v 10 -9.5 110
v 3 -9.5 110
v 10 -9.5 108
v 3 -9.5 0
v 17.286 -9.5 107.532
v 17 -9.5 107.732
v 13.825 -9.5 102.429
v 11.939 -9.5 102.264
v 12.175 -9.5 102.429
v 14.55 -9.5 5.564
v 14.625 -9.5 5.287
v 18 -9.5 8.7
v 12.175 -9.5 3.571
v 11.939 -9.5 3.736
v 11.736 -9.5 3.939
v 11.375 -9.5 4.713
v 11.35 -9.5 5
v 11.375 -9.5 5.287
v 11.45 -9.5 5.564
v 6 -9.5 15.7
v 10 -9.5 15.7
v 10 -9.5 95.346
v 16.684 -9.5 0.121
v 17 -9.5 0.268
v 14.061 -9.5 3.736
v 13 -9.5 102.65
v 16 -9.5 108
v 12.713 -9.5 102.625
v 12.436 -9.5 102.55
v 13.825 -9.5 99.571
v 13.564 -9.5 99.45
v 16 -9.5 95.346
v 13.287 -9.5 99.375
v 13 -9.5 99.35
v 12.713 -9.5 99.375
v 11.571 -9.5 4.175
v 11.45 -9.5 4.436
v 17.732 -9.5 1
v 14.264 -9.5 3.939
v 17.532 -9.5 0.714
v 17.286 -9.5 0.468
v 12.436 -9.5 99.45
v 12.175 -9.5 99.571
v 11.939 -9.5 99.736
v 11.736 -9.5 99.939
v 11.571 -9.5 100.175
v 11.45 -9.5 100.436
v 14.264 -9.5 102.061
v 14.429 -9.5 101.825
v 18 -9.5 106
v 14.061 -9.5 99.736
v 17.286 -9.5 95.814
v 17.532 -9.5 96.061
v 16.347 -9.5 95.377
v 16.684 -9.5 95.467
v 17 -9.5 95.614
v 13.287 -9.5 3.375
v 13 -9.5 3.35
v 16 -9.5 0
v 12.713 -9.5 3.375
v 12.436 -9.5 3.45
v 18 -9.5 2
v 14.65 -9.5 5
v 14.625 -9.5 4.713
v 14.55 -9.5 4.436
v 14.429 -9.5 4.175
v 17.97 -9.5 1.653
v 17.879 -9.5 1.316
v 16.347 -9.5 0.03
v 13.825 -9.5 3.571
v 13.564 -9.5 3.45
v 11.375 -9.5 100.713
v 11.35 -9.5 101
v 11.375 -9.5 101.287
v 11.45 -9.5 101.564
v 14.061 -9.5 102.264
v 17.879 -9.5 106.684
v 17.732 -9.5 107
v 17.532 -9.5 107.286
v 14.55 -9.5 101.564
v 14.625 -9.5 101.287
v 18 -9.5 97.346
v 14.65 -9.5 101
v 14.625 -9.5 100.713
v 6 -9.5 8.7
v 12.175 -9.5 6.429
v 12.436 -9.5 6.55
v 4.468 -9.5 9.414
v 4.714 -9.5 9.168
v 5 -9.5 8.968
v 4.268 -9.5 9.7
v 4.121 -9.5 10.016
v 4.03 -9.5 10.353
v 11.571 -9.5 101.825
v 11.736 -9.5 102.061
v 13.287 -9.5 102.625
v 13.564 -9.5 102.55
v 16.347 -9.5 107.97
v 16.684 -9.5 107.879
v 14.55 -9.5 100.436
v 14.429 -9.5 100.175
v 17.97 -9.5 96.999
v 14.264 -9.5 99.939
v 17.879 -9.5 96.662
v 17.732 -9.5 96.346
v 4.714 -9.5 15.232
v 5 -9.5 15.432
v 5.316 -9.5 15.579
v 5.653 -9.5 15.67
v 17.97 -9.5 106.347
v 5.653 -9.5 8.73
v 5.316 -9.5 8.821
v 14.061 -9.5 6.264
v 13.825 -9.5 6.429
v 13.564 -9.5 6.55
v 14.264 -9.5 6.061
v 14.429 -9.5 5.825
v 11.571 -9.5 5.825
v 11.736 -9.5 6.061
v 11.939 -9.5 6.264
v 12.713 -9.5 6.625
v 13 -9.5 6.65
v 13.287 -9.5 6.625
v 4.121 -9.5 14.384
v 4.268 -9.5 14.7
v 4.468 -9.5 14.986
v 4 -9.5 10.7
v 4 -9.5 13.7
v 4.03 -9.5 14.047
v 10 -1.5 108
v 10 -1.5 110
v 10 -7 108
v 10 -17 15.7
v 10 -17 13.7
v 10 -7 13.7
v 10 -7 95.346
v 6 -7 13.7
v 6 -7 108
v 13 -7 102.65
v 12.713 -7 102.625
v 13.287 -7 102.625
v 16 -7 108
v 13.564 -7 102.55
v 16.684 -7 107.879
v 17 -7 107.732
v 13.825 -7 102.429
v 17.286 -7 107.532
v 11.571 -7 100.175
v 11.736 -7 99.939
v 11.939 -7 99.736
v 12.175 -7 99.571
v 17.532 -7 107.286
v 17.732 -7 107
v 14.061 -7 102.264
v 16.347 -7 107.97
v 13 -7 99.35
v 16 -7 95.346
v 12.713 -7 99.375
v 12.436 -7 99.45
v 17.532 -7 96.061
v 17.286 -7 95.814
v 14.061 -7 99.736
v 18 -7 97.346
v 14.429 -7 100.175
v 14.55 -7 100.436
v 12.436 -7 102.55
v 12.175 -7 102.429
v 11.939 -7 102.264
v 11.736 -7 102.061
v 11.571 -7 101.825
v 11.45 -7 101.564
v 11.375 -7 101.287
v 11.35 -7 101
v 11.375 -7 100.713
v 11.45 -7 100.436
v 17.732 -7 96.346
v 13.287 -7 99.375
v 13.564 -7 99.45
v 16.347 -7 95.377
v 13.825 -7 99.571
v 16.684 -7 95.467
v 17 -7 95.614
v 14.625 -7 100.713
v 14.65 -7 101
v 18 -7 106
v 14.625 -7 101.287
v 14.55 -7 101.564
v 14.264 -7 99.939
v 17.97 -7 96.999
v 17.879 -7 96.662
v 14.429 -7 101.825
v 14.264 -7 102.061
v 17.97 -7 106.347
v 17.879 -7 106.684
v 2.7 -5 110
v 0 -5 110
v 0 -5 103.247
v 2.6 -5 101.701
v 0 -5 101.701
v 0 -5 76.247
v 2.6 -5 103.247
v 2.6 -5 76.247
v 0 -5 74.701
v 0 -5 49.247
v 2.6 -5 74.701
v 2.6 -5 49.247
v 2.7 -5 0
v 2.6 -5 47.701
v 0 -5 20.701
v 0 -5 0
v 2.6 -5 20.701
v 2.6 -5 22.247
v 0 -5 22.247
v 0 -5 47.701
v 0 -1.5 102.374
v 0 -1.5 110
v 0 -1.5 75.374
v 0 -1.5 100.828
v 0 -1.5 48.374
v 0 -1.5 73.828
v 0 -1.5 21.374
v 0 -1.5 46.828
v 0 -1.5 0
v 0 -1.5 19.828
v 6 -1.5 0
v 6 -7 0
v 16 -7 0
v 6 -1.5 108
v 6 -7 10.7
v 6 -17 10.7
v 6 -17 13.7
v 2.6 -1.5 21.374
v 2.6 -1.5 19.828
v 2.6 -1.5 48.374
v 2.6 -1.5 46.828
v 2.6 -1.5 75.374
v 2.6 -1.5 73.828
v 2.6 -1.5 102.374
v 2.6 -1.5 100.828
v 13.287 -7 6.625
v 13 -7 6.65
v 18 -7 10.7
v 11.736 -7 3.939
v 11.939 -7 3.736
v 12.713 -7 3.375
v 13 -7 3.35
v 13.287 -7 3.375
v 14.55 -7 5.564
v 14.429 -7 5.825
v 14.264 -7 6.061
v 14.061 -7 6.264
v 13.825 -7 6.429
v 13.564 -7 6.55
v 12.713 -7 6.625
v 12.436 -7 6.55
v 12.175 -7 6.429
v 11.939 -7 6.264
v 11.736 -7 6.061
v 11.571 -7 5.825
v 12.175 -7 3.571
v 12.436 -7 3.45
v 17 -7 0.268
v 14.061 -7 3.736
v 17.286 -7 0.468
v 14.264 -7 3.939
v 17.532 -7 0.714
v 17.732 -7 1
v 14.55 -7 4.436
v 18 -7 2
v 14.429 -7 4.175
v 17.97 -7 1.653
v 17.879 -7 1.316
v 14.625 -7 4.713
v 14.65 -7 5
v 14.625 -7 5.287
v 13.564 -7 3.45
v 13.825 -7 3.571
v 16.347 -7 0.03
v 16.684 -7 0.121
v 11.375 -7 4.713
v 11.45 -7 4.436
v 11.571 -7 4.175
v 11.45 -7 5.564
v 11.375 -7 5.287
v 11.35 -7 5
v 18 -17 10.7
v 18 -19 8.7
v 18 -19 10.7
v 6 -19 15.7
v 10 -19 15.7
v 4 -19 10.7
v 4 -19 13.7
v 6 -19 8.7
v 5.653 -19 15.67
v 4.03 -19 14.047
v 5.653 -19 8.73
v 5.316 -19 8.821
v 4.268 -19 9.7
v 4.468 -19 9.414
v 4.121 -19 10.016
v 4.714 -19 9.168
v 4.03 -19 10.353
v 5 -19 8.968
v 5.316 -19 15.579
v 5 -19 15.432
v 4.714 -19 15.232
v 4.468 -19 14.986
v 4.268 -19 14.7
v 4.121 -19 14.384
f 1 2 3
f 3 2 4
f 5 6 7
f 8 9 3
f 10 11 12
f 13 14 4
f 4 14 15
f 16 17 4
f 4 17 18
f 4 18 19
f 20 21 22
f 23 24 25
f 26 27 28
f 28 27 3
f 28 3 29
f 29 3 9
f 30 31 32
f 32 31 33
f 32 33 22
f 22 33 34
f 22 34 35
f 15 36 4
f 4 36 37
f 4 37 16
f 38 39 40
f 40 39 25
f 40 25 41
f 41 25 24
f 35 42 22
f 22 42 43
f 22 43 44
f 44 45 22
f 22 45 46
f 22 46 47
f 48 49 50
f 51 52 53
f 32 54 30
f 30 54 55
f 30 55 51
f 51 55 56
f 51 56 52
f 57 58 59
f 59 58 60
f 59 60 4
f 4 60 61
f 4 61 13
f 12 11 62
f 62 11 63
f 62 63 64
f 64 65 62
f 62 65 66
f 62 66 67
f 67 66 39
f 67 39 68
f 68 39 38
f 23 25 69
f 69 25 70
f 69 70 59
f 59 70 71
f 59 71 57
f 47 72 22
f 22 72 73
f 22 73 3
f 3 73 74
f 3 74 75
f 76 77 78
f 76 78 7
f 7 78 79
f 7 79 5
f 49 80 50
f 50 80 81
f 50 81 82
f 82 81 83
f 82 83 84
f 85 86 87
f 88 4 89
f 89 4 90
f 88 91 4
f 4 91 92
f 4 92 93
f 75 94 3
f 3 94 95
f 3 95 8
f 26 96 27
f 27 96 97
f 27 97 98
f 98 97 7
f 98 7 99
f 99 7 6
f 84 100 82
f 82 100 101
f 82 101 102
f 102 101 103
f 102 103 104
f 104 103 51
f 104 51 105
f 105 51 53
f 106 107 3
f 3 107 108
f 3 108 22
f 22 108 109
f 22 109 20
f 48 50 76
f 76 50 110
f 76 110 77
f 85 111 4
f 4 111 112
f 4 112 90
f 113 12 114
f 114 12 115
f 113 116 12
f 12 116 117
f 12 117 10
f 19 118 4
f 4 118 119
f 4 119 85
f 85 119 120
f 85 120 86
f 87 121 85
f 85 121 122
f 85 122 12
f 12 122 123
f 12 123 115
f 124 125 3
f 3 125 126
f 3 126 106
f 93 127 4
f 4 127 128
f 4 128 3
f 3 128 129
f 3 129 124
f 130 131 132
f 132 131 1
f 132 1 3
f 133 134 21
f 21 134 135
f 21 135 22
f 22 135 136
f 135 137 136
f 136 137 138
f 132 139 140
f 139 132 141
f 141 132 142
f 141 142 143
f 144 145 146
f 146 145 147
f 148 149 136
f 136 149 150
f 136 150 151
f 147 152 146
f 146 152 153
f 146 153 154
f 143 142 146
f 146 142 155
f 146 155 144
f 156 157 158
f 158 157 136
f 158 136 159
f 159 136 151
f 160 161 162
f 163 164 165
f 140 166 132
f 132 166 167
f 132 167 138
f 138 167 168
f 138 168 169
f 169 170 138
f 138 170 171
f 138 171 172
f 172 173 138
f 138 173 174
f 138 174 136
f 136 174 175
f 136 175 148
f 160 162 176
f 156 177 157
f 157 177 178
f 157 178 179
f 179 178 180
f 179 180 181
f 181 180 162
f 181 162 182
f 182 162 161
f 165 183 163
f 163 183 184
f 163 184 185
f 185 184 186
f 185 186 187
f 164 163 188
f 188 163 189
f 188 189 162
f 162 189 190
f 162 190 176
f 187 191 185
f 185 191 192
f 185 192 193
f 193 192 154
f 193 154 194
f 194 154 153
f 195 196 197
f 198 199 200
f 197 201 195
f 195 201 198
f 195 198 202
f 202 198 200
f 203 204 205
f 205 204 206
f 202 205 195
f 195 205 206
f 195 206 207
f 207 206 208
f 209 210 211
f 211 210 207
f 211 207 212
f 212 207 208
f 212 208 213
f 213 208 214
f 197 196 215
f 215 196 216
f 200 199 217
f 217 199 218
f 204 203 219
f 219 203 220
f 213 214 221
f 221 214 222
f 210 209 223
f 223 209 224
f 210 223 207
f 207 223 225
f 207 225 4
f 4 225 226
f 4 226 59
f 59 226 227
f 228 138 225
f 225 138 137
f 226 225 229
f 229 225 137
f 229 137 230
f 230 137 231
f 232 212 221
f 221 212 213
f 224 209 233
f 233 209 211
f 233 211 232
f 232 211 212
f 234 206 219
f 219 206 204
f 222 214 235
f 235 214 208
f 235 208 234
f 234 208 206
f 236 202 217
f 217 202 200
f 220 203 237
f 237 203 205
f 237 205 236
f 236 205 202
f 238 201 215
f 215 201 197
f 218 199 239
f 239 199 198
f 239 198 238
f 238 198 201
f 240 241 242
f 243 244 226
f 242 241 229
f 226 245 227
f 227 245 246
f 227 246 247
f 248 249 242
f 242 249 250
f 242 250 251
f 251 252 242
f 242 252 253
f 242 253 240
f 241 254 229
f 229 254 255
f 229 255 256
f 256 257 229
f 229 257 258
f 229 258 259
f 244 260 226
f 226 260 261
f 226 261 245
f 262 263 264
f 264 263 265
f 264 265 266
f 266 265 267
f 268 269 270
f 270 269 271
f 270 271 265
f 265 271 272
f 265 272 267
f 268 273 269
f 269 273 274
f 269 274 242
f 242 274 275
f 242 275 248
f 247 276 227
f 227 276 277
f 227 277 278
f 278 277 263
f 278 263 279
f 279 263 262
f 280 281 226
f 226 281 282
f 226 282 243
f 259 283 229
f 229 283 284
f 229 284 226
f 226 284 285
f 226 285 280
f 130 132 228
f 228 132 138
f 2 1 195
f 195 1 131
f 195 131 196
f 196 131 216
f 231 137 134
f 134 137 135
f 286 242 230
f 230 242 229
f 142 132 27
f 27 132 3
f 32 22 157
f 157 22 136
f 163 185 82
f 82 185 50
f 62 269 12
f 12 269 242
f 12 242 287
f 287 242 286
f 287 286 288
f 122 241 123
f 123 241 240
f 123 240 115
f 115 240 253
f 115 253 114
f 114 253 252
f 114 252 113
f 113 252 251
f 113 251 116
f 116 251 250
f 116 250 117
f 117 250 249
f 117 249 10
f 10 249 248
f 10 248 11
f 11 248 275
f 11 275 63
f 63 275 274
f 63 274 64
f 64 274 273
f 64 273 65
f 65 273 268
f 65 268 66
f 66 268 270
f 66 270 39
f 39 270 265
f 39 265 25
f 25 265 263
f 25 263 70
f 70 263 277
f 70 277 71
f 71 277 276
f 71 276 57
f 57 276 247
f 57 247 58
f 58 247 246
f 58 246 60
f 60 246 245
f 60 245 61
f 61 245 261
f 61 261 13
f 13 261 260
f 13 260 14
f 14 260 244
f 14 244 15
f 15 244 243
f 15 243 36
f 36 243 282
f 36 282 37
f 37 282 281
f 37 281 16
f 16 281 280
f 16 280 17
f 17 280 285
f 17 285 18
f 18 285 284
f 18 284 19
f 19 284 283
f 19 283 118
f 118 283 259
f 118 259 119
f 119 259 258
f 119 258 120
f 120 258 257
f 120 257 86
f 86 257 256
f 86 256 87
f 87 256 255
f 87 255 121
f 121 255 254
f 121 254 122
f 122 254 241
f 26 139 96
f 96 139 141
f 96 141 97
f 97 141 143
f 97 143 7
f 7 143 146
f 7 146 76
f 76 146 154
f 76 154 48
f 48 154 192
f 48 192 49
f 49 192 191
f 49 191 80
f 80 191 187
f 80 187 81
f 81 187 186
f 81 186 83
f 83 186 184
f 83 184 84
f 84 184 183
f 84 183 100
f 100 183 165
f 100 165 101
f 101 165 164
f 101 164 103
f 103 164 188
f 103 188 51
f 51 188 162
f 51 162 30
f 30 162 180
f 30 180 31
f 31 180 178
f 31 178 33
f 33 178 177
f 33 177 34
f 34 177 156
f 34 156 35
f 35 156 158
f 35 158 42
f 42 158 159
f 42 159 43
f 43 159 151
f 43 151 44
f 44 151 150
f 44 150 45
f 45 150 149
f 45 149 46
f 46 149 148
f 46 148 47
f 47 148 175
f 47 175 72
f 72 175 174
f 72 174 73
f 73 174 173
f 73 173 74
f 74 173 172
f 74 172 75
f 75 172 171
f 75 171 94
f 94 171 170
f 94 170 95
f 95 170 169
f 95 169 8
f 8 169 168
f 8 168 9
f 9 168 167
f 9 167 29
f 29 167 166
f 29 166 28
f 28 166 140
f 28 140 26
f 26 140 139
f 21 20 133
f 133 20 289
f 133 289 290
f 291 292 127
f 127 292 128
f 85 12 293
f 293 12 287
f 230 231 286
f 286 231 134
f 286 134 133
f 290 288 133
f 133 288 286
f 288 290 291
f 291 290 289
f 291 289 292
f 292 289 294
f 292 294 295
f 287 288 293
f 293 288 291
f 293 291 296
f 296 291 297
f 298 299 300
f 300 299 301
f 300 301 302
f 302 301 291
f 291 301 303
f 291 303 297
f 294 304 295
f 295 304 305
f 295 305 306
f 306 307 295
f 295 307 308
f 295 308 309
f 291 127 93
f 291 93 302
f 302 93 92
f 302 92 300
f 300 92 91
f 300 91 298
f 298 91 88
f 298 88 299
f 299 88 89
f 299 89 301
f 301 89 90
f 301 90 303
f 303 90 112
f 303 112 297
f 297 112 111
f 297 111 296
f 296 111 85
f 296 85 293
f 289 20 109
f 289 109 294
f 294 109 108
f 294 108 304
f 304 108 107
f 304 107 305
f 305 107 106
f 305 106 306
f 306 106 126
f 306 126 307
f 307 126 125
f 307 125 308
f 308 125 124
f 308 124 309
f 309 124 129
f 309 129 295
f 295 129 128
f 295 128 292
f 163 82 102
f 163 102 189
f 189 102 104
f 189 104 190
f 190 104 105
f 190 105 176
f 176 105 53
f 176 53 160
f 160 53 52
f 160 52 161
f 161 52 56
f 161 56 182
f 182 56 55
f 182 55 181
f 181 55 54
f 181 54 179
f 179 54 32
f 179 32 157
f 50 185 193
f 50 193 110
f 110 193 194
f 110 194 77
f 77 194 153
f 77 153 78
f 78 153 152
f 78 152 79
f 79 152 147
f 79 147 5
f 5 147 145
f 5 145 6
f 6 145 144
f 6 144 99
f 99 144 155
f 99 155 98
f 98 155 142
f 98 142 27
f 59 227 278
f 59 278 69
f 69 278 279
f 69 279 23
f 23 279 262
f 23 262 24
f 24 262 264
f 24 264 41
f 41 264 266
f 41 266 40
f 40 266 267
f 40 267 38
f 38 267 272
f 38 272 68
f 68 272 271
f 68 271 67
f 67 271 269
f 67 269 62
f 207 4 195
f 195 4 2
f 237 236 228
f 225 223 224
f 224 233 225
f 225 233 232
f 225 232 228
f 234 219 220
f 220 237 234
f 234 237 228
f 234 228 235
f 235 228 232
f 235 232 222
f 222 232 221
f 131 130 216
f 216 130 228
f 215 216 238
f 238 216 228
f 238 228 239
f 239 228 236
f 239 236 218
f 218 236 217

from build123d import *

# Parameters (mm, degrees)
SIDE_LIP_MAIN_SECTION_W          = 6
SIDE_LIP_MAIN_SECTION_H          = 108
SIDE_LIP_DEPTH                   = 5
VERTICAL_FIN_CUTS_DEPTH          = 2.6
SKETCH4_W                        = 3.5
SKETCH4_H                        = 108
DESCENDER_DEPTH                  = 4.5
SKETCH5_W                        = 108
SKETCH5_H                        = 2.5
PCB_BASE_DEPTH                   = 4
LOWER_CAP_DEPTH                  = 2
SKETCH9_W                        = 3
SKETCH9_H                        = 2.5
AL_BAR_CUT_DEPTH                 = 4
SKETCH10_W                       = 12.653731328
SKETCH10_H                       = 2.5
SKETCH10_W_2                     = 10.7
SUPPORT_TABS_DEPTH               = 8
BOLT_HOLES_REACH                 = 4.5
SKETCH11_R                       = 1.65
AL_BAR_ENCLOSURE_DEPTH           = 7.5
AL_BAR_BASE_DEPTH                = 2
FILLET1_R                        = 2
SKETCH16_W                       = 10
SKETCH16_H                       = 0.5
REDUCE_SIDE_SUPPORT_HEIGHT_DEPTH = 111
SIT_FLAT_DEPTH                   = 111
SKETCH19_W                       = 110
SKETCH19_H                       = 1
LOWER_TOP_DEPTH                  = 19


with BuildPart() as part:
    # Side lip main section → Side lip (new body)
    with BuildSketch(Plane(origin=(0, 0, 0), x_dir=(1, 0, 0), z_dir=(0, 1, 0))):
        with Locations((3, -54)):
            Rectangle(SIDE_LIP_MAIN_SECTION_W, SIDE_LIP_MAIN_SECTION_H)
    extrude(amount=-SIDE_LIP_DEPTH)

    # Sketch2 → Vertical fin cuts (cut)
    with BuildSketch(Plane.ZY):
        Polygon((102, 0), (103.246640014, -5), (101.70071957, -5), (100.454079556, 0), align=None)
        Polygon((75, 0), (76.246640014, -5), (74.70071957, -5), (73.454079556, 0), align=None)
        Polygon((48, 0), (49.246640014, -5), (47.70071957, -5), (46.454079556, 0), align=None)
        Polygon((21, 0), (22.246640014, -5), (20.70071957, -5), (19.454079556, 0), align=None)
    extrude(amount=-VERTICAL_FIN_CUTS_DEPTH, mode=Mode.SUBTRACT)

    # Sketch4 → Descender (add)
    with BuildSketch(Plane.XZ.offset(5)):
        with Locations((4.25, 54)):
            Rectangle(SKETCH4_W, SKETCH4_H)
    extrude(amount=DESCENDER_DEPTH)

    # Sketch5 → PCB base (add)
    with BuildSketch(Plane(origin=(6, 0, 0), x_dir=(0, 0, -1), z_dir=(1, 0, 0))):
        with Locations((-54, -8.25)):
            Rectangle(SKETCH5_W, SKETCH5_H)
    extrude(amount=PCB_BASE_DEPTH)

    # Sketch8 → Lower cap (add)
    with BuildSketch(Plane.XY.offset(108)):
        Polygon((6, 0), (10, 0), (10, -7), (10, -9.5), (2.5, -9.5), (2.5, -5), (0, -5), (0, 0), align=None)
    extrude(amount=LOWER_CAP_DEPTH)

    # Sketch9 → Al bar cut (cut)
    with BuildSketch(Plane(origin=(10, 0, 0), x_dir=(0, 0, -1), z_dir=(1, 0, 0))):
        with Locations((-12.2, -8.25)):
            Rectangle(SKETCH9_W, SKETCH9_H)
    extrude(amount=-AL_BAR_CUT_DEPTH, mode=Mode.SUBTRACT)

    # Sketch10 → Support tabs (add)
    with BuildSketch(Plane(origin=(10, 0, 0), x_dir=(0, 0, -1), z_dir=(1, 0, 0))):
        with Locations((-101.673134336, -8.25)):
            Rectangle(SKETCH10_W, SKETCH10_H)
        with Locations((-5.35, -8.25)):
            Rectangle(SKETCH10_W_2, SKETCH10_H)
    extrude(amount=SUPPORT_TABS_DEPTH)

    # Sketch11 → Bolt holes (cut, up to next)
    with BuildSketch(Plane(origin=(0, -7, 0), x_dir=(1, 0, 0), z_dir=(0, 1, 0)), mode=Mode.PRIVATE) as bolt_holes_sk1:
        with Locations((13, -5)):
            Circle(SKETCH11_R)
    bolt_holes_tool1 = extrude(bolt_holes_sk1.sketch, amount=-BOLT_HOLES_REACH, mode=Mode.PRIVATE) & part.part
    add(bolt_holes_tool1.solids().sort_by_distance((13, -7, 5))[0], mode=Mode.SUBTRACT)
    # Sketch11 → Bolt holes (cut, up to next)
    with BuildSketch(Plane(origin=(0, -7, 0), x_dir=(1, 0, 0), z_dir=(0, 1, 0)), mode=Mode.PRIVATE) as bolt_holes_sk2:
        with Locations((13, -101)):
            Circle(SKETCH11_R)
    bolt_holes_tool2 = extrude(bolt_holes_sk2.sketch, amount=-BOLT_HOLES_REACH, mode=Mode.PRIVATE) & part.part
    add(bolt_holes_tool2.solids().sort_by_distance((13, -7, 101))[0], mode=Mode.SUBTRACT)

    # Sketch12 → Al bar enclosure (add)
    with BuildSketch(Plane.XZ.offset(9.5)):
        Polygon((6, 10.7), (18, 10.7), (18, 8.7), (4, 8.7), (4, 15.7), (10, 15.7), (10, 13.7), (6, 13.7), align=None)
    extrude(amount=AL_BAR_ENCLOSURE_DEPTH)

    # Sketch13 → Al bar base (add)
    with BuildSketch(Plane.XZ.offset(17)):
        Polygon((10, 15.7), (4, 15.7), (4, 8.7), (18, 8.7), (18, 10.7), align=None)
    extrude(amount=AL_BAR_BASE_DEPTH)

    # Fillet1
    fillet1_edges = [part.edges().sort_by_distance(p)[0] for p in [
        (18, -8.25, 108),
        (18, -8.25, 95.346268672),
        (18, -8.25, 0),
        (4, -14.25, 15.7),
        (4, -14.25, 8.7),
    ]]
    fillet(fillet1_edges, radius=FILLET1_R)

    # Sketch16 → Reduce side support height (cut, through all)
    with BuildSketch(Plane.XY.offset(110)):
        with Locations((5, -0.25)):
            Rectangle(SKETCH16_W, SKETCH16_H)
    extrude(amount=-REDUCE_SIDE_SUPPORT_HEIGHT_DEPTH, mode=Mode.SUBTRACT)

    # Sketch17 → Sit flat! (cut, through all)
    with BuildSketch(Plane.XY.offset(110)):
        Polygon((2.5, -5), (2.7, -5), (3, -9.5), (2.5, -9.5), align=None)
    extrude(amount=-SIT_FLAT_DEPTH, mode=Mode.SUBTRACT)

    # Sketch19 → Lower top (cut, through all)
    with BuildSketch(Plane.ZY):
        with Locations((55, -1)):
            Rectangle(SKETCH19_W, SKETCH19_H)
    extrude(amount=-LOWER_TOP_DEPTH, mode=Mode.SUBTRACT)


solid = part.part
